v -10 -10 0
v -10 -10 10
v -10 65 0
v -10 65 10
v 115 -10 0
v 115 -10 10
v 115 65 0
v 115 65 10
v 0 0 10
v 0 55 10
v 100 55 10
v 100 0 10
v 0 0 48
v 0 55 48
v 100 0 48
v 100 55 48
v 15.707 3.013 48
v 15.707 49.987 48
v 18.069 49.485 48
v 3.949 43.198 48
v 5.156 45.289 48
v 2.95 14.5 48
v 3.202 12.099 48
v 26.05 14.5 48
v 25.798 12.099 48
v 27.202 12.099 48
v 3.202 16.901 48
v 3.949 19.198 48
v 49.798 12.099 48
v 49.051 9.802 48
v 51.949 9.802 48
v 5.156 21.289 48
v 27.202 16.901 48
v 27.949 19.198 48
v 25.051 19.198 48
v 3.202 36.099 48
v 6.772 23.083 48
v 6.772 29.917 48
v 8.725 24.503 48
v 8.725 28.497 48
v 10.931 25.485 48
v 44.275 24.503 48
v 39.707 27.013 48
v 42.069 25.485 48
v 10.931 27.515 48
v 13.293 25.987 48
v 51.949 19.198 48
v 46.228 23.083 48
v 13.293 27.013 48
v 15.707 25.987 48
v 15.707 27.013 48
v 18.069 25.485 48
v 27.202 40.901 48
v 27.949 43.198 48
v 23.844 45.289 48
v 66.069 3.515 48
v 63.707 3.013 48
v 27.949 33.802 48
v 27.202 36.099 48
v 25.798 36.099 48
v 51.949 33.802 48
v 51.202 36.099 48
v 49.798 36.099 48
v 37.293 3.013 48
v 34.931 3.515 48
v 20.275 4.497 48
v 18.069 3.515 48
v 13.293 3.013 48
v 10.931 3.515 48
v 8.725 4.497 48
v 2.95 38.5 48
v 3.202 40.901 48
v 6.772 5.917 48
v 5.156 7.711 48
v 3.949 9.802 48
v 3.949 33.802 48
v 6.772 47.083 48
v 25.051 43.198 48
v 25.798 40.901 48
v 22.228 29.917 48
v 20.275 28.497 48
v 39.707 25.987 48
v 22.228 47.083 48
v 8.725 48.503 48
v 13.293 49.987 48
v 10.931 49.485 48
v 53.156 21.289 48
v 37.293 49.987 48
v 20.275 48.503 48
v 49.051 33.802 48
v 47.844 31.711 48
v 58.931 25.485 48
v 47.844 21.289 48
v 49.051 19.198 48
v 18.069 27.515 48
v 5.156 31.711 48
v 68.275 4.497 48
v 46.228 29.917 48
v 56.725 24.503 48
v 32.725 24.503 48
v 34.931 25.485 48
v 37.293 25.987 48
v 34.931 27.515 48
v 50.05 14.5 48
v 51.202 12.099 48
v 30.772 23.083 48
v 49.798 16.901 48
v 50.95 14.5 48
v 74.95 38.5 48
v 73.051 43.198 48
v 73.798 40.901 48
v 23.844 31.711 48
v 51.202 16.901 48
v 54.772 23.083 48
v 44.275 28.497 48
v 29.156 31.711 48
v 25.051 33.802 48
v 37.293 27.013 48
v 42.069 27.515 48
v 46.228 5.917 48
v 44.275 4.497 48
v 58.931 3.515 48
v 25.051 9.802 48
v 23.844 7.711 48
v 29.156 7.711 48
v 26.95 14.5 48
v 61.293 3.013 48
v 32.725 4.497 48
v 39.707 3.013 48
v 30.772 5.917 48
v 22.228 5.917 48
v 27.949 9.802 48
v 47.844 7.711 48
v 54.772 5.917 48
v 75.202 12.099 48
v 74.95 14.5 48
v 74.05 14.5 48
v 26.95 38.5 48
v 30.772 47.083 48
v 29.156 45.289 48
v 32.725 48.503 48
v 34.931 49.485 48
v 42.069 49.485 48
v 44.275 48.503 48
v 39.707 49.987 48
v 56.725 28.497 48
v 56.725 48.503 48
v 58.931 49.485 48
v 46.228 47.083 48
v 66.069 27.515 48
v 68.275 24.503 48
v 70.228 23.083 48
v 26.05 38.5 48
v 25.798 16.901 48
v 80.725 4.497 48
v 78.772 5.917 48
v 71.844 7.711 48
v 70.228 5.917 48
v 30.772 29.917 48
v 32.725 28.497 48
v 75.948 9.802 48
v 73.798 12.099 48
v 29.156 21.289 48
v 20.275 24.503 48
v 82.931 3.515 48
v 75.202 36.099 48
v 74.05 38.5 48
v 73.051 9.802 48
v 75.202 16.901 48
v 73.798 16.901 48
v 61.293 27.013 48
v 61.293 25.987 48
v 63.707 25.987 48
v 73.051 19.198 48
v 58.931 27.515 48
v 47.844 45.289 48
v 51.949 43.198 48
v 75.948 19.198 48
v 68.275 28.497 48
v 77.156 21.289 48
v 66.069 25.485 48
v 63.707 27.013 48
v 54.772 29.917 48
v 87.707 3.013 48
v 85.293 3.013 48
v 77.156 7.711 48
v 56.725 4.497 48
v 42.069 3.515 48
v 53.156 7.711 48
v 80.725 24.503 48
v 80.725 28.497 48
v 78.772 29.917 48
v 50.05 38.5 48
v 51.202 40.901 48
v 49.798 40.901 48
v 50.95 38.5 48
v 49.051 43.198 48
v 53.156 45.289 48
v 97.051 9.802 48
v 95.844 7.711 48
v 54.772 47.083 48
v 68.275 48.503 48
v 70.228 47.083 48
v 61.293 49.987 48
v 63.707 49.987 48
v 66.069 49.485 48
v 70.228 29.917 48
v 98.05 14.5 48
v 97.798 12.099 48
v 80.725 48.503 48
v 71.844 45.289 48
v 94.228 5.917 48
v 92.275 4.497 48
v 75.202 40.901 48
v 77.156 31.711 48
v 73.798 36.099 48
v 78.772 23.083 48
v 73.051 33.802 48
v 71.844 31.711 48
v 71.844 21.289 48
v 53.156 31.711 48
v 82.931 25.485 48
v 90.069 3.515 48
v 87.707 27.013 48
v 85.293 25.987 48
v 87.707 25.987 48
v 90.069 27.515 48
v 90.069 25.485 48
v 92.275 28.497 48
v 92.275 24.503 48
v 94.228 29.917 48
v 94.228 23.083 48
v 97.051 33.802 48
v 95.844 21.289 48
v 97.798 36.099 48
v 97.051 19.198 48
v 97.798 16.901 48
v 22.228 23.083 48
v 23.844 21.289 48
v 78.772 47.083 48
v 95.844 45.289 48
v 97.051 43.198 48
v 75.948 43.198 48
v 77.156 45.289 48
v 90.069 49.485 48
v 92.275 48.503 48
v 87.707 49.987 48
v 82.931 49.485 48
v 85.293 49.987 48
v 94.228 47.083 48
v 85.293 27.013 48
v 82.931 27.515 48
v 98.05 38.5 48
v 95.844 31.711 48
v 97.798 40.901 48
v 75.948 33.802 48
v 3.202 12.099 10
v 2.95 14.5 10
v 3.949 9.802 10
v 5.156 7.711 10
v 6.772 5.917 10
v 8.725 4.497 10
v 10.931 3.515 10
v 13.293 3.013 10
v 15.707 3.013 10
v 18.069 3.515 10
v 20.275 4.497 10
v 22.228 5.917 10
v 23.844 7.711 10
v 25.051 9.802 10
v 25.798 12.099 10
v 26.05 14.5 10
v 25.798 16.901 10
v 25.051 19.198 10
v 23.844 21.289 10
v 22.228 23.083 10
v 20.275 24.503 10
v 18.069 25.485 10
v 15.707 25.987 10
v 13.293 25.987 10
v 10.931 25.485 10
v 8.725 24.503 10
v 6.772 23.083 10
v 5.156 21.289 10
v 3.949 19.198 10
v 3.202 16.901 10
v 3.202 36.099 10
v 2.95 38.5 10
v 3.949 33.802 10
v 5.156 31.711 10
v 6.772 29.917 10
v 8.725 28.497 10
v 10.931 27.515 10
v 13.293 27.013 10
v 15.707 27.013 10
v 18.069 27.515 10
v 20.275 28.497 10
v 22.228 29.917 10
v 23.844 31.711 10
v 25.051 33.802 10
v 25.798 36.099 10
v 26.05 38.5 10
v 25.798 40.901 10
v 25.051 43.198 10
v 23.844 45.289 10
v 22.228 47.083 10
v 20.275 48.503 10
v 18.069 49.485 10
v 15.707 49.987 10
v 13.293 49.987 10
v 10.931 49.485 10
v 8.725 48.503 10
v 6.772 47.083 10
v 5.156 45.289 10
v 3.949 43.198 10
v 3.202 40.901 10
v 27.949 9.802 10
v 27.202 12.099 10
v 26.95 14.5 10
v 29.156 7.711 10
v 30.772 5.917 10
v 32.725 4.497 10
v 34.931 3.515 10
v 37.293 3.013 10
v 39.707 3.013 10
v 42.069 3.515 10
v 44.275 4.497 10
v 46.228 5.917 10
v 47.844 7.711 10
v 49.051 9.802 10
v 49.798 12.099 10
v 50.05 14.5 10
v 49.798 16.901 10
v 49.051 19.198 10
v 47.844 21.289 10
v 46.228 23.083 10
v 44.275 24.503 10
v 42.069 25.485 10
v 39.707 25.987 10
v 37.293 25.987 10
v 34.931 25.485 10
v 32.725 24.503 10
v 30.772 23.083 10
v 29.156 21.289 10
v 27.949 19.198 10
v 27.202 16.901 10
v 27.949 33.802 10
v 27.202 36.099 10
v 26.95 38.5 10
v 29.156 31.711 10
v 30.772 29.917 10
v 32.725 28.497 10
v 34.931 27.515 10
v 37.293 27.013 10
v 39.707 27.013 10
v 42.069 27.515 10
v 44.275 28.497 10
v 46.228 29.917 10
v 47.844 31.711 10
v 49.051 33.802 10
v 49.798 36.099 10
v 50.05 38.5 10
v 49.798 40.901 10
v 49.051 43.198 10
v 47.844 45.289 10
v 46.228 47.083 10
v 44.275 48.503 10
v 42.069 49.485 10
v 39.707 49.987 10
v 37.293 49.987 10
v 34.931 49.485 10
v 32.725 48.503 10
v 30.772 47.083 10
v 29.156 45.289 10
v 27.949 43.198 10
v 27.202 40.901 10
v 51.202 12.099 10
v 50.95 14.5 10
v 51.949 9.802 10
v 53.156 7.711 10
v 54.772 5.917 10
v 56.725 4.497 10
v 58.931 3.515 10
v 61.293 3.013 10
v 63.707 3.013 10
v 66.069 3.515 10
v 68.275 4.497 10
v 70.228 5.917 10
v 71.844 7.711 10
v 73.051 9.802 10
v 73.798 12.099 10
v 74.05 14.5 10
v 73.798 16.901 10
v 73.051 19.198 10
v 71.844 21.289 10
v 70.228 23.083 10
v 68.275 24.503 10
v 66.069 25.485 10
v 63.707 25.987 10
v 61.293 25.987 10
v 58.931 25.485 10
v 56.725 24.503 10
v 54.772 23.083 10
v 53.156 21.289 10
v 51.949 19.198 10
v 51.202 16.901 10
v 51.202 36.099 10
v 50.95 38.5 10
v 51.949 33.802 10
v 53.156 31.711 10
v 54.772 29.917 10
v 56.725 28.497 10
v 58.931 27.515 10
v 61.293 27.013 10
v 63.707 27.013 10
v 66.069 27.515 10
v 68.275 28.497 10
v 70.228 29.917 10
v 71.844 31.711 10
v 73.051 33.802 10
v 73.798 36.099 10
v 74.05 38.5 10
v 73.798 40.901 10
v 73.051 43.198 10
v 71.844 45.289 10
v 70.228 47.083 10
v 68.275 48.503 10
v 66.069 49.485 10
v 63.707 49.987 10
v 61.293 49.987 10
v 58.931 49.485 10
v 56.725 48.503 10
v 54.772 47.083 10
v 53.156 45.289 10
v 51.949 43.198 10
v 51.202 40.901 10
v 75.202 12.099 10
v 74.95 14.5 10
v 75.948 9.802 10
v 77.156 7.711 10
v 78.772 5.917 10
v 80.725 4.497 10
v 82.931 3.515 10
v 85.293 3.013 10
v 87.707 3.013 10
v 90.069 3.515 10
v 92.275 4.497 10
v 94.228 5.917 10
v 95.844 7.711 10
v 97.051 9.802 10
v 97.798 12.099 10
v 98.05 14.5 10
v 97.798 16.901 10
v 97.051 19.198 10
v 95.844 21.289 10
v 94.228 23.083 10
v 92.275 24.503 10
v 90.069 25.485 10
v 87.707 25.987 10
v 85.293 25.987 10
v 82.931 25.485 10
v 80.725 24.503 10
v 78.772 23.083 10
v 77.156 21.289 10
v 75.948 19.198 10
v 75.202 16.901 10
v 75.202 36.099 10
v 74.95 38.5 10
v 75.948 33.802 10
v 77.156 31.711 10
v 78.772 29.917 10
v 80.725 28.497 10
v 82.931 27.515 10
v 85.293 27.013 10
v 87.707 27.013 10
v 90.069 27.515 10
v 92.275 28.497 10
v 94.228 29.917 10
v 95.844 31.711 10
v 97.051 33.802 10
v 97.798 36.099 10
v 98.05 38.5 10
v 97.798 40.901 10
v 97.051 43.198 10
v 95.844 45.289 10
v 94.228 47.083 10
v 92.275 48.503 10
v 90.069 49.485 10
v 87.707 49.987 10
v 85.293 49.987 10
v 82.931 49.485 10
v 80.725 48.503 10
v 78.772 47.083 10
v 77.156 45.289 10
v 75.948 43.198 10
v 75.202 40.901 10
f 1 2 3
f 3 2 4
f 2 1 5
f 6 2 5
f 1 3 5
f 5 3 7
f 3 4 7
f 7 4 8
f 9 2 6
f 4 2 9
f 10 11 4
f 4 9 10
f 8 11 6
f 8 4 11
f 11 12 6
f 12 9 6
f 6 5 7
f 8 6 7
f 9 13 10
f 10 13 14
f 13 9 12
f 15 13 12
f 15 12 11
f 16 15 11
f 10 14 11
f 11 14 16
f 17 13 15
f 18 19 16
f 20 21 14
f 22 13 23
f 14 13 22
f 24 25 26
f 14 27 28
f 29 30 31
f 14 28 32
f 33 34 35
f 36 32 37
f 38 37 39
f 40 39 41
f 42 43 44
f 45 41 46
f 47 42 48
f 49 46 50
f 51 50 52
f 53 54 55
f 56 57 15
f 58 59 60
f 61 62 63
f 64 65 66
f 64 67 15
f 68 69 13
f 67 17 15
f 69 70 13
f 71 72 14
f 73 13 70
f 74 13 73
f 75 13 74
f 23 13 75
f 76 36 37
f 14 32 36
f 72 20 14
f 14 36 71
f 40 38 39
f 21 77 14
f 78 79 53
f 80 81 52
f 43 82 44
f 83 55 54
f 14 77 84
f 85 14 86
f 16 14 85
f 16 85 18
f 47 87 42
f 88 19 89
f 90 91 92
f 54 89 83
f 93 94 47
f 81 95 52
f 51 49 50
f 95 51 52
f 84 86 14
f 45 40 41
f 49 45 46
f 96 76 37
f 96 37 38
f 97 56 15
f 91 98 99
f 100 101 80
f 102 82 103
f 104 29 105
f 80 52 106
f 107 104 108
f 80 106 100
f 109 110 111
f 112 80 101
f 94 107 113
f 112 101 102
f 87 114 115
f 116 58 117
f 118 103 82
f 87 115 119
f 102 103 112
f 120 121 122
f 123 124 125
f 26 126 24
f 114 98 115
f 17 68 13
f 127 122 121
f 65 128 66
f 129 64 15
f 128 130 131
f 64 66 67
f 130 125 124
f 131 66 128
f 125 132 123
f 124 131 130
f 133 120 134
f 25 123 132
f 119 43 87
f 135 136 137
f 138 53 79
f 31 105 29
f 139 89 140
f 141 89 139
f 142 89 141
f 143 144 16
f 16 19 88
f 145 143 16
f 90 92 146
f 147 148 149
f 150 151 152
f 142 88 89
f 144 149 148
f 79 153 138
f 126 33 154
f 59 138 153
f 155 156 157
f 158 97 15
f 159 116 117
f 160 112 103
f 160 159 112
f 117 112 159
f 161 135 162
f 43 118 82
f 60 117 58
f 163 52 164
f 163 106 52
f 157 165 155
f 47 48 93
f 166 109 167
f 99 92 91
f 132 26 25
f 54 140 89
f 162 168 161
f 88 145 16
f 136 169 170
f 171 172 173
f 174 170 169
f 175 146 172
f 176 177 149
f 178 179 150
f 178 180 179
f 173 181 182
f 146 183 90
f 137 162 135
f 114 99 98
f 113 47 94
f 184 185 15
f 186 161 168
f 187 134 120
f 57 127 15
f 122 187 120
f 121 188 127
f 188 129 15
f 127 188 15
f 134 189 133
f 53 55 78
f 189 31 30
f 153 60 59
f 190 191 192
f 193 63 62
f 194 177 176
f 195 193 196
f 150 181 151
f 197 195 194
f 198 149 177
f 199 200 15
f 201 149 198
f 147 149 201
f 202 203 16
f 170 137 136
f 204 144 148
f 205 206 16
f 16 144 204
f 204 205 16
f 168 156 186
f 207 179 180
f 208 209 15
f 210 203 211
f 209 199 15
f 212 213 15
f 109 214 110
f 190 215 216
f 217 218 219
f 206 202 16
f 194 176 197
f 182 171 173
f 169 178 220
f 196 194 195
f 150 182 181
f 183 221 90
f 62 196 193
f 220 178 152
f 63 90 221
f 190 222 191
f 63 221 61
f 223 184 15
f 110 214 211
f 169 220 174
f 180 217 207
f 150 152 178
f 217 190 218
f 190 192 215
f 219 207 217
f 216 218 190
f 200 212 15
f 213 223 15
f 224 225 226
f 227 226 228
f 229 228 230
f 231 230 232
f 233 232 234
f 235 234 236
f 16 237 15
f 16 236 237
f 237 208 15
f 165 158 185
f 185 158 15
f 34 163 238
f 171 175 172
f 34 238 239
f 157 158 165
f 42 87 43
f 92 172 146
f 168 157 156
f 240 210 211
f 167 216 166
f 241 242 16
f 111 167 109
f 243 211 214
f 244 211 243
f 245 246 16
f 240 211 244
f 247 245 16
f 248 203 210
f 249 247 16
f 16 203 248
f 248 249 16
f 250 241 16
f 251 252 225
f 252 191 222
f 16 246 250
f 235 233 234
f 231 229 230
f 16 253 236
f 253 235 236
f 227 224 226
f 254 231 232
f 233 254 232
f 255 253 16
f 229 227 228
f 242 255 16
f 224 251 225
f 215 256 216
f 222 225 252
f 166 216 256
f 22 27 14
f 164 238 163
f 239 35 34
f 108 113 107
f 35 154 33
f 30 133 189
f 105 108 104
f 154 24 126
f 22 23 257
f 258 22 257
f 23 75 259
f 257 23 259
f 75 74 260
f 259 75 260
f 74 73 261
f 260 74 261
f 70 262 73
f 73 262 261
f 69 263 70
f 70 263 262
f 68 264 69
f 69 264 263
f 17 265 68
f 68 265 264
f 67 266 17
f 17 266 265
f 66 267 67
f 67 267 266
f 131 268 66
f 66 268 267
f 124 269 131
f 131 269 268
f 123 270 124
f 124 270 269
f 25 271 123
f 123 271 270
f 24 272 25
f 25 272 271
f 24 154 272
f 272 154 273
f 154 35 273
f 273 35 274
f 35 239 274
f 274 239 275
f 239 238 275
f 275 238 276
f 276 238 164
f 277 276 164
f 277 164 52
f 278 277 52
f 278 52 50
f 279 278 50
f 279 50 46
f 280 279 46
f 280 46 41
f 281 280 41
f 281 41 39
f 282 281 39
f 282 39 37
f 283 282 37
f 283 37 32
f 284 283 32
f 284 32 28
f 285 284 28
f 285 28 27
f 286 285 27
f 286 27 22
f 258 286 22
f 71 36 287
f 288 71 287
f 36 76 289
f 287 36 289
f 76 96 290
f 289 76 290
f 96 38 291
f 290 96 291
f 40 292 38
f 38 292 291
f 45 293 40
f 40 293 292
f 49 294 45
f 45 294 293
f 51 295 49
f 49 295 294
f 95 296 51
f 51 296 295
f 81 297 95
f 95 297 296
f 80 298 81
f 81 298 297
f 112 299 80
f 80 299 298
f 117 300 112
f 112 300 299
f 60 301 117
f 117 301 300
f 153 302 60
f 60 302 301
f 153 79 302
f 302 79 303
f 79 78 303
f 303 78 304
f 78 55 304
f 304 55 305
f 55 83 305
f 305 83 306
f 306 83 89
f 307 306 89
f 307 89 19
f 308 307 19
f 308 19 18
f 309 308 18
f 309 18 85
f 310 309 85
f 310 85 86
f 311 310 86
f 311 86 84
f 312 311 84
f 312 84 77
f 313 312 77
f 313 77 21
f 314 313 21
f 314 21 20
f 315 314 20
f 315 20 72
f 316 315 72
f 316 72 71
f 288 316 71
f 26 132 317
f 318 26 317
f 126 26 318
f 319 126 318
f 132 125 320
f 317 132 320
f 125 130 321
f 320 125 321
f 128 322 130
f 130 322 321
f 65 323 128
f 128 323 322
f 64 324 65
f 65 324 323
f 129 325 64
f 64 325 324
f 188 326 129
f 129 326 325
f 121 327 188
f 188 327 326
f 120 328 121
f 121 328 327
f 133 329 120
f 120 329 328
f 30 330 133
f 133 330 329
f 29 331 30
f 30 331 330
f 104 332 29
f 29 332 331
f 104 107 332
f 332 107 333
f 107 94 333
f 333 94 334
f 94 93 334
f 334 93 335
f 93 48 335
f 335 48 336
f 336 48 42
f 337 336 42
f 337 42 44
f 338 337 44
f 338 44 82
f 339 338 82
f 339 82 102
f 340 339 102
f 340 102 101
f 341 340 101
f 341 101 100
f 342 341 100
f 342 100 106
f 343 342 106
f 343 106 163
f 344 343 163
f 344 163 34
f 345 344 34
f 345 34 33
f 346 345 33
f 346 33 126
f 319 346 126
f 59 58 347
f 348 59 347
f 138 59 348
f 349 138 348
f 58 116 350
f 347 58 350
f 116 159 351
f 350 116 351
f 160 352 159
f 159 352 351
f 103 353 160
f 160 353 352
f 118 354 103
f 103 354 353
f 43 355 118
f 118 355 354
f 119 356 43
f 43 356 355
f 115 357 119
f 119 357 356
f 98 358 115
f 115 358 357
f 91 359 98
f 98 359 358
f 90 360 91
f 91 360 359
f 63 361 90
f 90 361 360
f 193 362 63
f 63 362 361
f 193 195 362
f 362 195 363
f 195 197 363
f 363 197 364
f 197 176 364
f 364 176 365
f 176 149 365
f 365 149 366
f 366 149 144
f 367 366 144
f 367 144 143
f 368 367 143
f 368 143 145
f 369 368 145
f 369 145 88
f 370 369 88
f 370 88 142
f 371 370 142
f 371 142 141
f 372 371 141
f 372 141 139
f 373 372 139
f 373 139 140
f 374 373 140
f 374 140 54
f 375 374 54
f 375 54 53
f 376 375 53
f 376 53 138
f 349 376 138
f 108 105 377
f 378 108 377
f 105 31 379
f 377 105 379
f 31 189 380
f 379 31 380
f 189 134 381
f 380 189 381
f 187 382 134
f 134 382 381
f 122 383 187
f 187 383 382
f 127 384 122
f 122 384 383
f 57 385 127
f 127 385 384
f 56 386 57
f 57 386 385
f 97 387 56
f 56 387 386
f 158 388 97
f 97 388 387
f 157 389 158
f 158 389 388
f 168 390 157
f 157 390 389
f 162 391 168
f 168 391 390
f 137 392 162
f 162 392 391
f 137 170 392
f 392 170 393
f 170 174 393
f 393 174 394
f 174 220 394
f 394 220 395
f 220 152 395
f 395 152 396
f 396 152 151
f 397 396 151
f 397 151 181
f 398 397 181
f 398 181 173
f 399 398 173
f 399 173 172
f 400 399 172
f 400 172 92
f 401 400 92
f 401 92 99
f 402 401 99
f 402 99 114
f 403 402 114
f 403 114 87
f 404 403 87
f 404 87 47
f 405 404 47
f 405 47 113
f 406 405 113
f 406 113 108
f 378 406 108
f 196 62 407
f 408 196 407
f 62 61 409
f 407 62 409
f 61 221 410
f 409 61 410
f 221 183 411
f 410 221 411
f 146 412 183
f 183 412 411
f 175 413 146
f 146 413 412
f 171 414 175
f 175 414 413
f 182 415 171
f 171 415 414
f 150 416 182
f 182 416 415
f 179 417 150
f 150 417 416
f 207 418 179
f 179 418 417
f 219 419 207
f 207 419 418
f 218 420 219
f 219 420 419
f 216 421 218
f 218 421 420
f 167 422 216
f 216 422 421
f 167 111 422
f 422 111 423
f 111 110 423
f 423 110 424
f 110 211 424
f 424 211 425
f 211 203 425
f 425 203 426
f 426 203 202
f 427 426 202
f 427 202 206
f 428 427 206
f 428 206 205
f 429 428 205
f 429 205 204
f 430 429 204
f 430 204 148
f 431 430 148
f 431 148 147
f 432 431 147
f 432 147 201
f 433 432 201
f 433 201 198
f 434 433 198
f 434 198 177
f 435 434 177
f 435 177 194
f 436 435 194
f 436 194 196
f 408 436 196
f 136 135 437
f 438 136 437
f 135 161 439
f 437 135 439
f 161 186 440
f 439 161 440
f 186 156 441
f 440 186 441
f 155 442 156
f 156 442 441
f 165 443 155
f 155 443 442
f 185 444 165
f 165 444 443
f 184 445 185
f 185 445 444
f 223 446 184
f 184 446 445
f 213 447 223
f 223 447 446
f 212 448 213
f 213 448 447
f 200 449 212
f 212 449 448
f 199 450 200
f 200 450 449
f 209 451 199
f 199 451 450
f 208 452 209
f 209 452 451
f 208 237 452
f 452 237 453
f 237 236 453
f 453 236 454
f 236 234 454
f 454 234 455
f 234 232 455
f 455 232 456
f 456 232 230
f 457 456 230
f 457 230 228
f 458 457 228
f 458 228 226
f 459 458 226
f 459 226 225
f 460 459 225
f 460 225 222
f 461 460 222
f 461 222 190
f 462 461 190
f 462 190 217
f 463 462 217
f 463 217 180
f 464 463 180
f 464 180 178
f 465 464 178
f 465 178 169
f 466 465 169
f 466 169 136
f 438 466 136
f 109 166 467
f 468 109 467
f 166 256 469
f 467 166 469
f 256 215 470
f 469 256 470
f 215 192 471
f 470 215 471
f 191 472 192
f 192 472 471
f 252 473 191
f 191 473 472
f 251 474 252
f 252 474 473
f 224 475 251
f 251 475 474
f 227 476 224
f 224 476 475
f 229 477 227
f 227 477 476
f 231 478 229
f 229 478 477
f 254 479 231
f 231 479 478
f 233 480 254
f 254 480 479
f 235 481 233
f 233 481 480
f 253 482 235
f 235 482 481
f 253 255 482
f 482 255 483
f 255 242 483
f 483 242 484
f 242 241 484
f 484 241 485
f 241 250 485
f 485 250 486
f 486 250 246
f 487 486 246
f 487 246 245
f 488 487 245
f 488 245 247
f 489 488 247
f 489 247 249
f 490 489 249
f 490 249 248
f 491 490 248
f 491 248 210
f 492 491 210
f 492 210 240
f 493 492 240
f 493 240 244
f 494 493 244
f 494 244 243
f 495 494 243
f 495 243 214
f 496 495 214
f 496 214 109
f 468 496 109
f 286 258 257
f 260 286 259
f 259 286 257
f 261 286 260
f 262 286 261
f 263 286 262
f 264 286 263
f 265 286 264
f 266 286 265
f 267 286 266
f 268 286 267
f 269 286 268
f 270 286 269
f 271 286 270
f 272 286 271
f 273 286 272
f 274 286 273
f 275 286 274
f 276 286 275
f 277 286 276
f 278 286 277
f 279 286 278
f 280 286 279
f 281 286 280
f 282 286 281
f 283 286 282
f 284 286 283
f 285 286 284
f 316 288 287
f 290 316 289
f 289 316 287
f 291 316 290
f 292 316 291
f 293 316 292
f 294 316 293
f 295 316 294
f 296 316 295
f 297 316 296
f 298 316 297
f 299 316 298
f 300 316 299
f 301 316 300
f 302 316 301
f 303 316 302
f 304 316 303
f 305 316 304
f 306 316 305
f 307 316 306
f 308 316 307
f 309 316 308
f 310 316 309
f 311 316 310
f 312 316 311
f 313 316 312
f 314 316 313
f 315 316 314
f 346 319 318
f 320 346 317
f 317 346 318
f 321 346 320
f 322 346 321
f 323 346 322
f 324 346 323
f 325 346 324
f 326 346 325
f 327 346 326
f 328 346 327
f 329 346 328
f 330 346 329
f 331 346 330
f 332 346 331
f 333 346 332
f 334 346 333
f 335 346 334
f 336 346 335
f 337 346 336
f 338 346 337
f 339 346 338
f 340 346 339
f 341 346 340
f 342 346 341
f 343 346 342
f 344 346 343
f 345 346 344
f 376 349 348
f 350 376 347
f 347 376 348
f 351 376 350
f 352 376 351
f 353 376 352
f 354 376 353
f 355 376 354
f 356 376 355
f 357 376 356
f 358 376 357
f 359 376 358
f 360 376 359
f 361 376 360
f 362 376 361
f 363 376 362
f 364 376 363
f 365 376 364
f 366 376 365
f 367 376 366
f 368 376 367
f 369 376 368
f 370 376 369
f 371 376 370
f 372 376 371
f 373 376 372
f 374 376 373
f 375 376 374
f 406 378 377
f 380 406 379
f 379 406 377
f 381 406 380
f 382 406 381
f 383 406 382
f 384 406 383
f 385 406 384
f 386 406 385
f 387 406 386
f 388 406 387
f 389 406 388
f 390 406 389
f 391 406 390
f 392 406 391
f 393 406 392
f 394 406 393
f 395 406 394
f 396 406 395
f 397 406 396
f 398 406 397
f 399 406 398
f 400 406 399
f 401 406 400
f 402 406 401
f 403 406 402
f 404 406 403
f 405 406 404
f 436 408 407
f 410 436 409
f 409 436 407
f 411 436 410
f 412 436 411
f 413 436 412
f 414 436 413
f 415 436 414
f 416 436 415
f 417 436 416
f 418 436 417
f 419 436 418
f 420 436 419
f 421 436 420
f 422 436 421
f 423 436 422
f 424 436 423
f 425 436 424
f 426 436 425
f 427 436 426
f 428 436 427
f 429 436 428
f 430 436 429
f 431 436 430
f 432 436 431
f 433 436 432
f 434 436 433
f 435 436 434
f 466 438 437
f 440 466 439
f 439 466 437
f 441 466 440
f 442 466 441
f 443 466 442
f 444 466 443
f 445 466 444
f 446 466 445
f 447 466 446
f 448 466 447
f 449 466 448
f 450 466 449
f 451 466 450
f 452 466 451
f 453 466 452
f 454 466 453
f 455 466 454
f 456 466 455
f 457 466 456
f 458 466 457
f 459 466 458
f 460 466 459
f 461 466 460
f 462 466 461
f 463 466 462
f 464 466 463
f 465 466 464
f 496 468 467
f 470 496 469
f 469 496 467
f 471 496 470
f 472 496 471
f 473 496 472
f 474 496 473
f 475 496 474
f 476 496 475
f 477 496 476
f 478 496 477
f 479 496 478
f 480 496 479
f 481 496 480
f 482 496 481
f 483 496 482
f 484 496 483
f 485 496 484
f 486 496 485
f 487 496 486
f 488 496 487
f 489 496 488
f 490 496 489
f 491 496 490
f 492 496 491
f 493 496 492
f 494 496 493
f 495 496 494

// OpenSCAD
module subC_NiCd() {
	cylinder(r=23.1/2, h=50);
}

union() {
		translate([-10, -10, 0]) cube([125, 75, 10]);
		translate([0, 0, 8])
		difference() {
			cube([100, 55, 40]);
				for(j = [ 0 : 1]) {
					for( i = [ 0 : 3 ] ) {
						translate([2, 2, 0])
						translate([12.5 + (i * 24), 
								   12.5 + (j * 24), 
								   -1]) 
									subC_NiCd();
					}
				}
		}
}
